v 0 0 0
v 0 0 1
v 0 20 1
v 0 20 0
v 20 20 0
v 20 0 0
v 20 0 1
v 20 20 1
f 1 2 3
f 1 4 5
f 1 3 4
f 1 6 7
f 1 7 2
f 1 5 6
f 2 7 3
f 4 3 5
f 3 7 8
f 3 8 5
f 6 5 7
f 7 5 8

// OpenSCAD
/* Warning, this is a very basic generator with a lot of approximation 
input data : [TQFP, XFB, 20x20x1mm, 144, , B, C04-21560B]
generated by com.zoubworld.electronics.cad.model3d.Basic
Date : Sun Feb 15 10:50:49 CET 2026
*/

//body
color("black")
translate([0,0,0])
cube([20.0,20.0,1.0], center=false);
